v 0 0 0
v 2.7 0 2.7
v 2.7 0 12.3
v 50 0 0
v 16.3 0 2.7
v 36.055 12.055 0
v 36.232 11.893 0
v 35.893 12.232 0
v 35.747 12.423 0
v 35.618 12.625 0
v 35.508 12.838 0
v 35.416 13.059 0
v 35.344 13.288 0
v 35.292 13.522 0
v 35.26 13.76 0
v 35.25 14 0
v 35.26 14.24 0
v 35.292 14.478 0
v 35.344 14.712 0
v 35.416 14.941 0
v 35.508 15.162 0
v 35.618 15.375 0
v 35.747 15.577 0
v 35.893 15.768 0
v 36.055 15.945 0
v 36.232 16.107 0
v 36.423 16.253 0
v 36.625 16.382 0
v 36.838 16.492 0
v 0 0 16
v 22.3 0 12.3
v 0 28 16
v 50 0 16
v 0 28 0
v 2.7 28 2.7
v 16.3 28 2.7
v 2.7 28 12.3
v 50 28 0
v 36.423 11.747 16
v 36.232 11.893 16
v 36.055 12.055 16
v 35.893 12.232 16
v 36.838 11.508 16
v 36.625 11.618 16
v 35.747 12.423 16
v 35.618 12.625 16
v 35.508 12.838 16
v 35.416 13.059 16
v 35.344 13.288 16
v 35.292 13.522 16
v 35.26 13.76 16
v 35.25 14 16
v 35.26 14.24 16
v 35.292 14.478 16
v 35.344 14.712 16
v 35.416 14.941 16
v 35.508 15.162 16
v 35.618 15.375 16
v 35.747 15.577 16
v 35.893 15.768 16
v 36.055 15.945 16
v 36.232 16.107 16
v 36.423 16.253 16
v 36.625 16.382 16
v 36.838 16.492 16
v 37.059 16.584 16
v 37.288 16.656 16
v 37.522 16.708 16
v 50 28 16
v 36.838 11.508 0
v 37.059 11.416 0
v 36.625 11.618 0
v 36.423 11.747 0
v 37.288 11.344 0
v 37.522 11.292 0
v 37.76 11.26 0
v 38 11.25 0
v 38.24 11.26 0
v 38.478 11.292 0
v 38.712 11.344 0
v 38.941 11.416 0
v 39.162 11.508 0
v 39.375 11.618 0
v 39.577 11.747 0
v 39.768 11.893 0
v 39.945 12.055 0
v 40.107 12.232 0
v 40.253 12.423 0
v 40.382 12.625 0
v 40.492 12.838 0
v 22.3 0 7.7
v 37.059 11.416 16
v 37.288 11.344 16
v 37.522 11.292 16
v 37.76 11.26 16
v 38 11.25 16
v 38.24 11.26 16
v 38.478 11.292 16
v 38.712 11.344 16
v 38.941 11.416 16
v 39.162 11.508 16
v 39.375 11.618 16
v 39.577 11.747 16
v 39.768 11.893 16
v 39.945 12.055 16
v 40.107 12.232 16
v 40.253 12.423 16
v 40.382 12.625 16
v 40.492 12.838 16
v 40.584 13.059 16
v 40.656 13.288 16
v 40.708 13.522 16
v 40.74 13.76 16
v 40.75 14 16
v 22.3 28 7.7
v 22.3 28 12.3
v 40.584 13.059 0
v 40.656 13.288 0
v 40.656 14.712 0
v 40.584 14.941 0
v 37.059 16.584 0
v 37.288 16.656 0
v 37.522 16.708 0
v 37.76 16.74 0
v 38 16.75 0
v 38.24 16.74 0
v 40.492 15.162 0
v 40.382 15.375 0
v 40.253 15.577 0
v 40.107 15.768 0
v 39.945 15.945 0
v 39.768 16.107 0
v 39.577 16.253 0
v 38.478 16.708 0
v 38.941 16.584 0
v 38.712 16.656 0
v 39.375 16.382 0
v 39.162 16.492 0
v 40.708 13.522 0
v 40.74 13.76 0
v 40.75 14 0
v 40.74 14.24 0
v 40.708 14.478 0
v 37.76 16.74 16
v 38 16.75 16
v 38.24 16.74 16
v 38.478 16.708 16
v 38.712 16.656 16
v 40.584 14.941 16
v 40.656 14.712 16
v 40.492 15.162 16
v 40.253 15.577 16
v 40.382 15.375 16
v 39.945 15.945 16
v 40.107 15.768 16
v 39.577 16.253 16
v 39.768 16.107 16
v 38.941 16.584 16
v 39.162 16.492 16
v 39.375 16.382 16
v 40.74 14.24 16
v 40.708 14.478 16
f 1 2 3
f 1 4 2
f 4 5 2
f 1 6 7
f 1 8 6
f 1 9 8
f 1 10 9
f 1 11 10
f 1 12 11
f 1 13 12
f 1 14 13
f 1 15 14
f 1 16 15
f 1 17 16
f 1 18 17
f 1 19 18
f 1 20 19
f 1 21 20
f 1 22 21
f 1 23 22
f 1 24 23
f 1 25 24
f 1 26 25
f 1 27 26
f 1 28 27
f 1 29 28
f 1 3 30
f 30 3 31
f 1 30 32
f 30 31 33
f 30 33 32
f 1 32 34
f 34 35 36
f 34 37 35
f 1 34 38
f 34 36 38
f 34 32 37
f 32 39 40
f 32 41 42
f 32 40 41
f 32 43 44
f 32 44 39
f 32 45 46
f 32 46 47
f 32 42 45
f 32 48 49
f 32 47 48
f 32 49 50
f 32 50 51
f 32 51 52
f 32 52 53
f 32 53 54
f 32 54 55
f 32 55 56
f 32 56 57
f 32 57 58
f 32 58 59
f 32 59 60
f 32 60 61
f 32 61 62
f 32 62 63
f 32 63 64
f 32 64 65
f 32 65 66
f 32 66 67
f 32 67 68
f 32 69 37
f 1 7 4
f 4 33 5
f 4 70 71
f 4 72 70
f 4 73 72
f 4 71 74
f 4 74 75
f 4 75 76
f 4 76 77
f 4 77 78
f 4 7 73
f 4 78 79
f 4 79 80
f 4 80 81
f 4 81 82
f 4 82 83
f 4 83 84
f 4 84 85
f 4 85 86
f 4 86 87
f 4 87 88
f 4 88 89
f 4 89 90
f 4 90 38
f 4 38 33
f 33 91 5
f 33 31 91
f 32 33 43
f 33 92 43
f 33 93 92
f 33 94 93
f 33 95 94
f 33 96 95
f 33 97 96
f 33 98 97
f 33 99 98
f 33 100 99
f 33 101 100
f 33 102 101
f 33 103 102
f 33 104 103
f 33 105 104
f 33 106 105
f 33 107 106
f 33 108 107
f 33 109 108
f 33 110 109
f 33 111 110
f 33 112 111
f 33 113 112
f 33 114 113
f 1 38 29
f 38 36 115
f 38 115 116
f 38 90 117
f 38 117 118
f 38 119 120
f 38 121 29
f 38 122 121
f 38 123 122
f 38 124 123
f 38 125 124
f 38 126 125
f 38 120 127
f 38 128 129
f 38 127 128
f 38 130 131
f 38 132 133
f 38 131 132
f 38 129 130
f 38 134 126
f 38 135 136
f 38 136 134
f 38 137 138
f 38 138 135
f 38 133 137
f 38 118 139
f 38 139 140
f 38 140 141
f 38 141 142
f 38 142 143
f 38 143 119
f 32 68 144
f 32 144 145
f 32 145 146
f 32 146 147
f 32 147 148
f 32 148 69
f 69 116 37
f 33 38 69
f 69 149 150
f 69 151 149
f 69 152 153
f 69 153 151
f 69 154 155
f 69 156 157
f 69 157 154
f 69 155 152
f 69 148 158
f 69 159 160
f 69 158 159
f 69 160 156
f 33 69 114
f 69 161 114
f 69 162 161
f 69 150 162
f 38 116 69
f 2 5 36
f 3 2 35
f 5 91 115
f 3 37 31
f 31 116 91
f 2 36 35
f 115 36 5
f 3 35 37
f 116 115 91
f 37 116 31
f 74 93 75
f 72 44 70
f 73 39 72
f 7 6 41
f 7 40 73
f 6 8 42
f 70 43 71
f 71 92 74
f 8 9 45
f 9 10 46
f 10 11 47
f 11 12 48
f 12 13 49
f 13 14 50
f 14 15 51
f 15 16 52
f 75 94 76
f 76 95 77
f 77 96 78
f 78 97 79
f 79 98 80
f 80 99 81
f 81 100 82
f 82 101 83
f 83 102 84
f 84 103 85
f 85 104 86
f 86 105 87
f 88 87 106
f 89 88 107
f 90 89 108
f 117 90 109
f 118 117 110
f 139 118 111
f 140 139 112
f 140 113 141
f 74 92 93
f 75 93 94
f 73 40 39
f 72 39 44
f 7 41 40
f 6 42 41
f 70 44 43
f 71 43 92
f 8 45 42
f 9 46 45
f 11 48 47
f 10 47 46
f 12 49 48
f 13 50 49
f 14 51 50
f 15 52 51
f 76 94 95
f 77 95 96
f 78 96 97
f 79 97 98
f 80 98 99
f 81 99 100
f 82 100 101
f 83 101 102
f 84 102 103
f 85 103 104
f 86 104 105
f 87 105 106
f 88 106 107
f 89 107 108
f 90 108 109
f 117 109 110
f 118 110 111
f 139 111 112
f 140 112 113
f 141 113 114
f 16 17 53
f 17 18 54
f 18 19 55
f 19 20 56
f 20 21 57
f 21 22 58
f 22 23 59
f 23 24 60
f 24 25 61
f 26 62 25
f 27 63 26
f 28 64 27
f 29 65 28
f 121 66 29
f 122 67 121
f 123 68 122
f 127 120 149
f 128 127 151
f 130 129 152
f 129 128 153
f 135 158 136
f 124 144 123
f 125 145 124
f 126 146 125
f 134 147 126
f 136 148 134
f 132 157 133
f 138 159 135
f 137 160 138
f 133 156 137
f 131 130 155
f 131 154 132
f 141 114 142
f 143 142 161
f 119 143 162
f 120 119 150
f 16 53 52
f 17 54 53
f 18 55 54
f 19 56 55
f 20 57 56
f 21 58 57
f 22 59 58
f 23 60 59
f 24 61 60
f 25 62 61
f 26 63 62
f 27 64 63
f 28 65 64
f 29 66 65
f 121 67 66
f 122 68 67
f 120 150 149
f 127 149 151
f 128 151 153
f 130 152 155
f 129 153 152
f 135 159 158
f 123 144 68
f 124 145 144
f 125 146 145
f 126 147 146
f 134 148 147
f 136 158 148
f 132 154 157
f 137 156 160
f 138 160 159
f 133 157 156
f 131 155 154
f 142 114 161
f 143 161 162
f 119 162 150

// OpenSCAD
// Printable detachable mounting ear. Print two copies.
part_override = "ear";
include <collector_curved_scoop.scad>
